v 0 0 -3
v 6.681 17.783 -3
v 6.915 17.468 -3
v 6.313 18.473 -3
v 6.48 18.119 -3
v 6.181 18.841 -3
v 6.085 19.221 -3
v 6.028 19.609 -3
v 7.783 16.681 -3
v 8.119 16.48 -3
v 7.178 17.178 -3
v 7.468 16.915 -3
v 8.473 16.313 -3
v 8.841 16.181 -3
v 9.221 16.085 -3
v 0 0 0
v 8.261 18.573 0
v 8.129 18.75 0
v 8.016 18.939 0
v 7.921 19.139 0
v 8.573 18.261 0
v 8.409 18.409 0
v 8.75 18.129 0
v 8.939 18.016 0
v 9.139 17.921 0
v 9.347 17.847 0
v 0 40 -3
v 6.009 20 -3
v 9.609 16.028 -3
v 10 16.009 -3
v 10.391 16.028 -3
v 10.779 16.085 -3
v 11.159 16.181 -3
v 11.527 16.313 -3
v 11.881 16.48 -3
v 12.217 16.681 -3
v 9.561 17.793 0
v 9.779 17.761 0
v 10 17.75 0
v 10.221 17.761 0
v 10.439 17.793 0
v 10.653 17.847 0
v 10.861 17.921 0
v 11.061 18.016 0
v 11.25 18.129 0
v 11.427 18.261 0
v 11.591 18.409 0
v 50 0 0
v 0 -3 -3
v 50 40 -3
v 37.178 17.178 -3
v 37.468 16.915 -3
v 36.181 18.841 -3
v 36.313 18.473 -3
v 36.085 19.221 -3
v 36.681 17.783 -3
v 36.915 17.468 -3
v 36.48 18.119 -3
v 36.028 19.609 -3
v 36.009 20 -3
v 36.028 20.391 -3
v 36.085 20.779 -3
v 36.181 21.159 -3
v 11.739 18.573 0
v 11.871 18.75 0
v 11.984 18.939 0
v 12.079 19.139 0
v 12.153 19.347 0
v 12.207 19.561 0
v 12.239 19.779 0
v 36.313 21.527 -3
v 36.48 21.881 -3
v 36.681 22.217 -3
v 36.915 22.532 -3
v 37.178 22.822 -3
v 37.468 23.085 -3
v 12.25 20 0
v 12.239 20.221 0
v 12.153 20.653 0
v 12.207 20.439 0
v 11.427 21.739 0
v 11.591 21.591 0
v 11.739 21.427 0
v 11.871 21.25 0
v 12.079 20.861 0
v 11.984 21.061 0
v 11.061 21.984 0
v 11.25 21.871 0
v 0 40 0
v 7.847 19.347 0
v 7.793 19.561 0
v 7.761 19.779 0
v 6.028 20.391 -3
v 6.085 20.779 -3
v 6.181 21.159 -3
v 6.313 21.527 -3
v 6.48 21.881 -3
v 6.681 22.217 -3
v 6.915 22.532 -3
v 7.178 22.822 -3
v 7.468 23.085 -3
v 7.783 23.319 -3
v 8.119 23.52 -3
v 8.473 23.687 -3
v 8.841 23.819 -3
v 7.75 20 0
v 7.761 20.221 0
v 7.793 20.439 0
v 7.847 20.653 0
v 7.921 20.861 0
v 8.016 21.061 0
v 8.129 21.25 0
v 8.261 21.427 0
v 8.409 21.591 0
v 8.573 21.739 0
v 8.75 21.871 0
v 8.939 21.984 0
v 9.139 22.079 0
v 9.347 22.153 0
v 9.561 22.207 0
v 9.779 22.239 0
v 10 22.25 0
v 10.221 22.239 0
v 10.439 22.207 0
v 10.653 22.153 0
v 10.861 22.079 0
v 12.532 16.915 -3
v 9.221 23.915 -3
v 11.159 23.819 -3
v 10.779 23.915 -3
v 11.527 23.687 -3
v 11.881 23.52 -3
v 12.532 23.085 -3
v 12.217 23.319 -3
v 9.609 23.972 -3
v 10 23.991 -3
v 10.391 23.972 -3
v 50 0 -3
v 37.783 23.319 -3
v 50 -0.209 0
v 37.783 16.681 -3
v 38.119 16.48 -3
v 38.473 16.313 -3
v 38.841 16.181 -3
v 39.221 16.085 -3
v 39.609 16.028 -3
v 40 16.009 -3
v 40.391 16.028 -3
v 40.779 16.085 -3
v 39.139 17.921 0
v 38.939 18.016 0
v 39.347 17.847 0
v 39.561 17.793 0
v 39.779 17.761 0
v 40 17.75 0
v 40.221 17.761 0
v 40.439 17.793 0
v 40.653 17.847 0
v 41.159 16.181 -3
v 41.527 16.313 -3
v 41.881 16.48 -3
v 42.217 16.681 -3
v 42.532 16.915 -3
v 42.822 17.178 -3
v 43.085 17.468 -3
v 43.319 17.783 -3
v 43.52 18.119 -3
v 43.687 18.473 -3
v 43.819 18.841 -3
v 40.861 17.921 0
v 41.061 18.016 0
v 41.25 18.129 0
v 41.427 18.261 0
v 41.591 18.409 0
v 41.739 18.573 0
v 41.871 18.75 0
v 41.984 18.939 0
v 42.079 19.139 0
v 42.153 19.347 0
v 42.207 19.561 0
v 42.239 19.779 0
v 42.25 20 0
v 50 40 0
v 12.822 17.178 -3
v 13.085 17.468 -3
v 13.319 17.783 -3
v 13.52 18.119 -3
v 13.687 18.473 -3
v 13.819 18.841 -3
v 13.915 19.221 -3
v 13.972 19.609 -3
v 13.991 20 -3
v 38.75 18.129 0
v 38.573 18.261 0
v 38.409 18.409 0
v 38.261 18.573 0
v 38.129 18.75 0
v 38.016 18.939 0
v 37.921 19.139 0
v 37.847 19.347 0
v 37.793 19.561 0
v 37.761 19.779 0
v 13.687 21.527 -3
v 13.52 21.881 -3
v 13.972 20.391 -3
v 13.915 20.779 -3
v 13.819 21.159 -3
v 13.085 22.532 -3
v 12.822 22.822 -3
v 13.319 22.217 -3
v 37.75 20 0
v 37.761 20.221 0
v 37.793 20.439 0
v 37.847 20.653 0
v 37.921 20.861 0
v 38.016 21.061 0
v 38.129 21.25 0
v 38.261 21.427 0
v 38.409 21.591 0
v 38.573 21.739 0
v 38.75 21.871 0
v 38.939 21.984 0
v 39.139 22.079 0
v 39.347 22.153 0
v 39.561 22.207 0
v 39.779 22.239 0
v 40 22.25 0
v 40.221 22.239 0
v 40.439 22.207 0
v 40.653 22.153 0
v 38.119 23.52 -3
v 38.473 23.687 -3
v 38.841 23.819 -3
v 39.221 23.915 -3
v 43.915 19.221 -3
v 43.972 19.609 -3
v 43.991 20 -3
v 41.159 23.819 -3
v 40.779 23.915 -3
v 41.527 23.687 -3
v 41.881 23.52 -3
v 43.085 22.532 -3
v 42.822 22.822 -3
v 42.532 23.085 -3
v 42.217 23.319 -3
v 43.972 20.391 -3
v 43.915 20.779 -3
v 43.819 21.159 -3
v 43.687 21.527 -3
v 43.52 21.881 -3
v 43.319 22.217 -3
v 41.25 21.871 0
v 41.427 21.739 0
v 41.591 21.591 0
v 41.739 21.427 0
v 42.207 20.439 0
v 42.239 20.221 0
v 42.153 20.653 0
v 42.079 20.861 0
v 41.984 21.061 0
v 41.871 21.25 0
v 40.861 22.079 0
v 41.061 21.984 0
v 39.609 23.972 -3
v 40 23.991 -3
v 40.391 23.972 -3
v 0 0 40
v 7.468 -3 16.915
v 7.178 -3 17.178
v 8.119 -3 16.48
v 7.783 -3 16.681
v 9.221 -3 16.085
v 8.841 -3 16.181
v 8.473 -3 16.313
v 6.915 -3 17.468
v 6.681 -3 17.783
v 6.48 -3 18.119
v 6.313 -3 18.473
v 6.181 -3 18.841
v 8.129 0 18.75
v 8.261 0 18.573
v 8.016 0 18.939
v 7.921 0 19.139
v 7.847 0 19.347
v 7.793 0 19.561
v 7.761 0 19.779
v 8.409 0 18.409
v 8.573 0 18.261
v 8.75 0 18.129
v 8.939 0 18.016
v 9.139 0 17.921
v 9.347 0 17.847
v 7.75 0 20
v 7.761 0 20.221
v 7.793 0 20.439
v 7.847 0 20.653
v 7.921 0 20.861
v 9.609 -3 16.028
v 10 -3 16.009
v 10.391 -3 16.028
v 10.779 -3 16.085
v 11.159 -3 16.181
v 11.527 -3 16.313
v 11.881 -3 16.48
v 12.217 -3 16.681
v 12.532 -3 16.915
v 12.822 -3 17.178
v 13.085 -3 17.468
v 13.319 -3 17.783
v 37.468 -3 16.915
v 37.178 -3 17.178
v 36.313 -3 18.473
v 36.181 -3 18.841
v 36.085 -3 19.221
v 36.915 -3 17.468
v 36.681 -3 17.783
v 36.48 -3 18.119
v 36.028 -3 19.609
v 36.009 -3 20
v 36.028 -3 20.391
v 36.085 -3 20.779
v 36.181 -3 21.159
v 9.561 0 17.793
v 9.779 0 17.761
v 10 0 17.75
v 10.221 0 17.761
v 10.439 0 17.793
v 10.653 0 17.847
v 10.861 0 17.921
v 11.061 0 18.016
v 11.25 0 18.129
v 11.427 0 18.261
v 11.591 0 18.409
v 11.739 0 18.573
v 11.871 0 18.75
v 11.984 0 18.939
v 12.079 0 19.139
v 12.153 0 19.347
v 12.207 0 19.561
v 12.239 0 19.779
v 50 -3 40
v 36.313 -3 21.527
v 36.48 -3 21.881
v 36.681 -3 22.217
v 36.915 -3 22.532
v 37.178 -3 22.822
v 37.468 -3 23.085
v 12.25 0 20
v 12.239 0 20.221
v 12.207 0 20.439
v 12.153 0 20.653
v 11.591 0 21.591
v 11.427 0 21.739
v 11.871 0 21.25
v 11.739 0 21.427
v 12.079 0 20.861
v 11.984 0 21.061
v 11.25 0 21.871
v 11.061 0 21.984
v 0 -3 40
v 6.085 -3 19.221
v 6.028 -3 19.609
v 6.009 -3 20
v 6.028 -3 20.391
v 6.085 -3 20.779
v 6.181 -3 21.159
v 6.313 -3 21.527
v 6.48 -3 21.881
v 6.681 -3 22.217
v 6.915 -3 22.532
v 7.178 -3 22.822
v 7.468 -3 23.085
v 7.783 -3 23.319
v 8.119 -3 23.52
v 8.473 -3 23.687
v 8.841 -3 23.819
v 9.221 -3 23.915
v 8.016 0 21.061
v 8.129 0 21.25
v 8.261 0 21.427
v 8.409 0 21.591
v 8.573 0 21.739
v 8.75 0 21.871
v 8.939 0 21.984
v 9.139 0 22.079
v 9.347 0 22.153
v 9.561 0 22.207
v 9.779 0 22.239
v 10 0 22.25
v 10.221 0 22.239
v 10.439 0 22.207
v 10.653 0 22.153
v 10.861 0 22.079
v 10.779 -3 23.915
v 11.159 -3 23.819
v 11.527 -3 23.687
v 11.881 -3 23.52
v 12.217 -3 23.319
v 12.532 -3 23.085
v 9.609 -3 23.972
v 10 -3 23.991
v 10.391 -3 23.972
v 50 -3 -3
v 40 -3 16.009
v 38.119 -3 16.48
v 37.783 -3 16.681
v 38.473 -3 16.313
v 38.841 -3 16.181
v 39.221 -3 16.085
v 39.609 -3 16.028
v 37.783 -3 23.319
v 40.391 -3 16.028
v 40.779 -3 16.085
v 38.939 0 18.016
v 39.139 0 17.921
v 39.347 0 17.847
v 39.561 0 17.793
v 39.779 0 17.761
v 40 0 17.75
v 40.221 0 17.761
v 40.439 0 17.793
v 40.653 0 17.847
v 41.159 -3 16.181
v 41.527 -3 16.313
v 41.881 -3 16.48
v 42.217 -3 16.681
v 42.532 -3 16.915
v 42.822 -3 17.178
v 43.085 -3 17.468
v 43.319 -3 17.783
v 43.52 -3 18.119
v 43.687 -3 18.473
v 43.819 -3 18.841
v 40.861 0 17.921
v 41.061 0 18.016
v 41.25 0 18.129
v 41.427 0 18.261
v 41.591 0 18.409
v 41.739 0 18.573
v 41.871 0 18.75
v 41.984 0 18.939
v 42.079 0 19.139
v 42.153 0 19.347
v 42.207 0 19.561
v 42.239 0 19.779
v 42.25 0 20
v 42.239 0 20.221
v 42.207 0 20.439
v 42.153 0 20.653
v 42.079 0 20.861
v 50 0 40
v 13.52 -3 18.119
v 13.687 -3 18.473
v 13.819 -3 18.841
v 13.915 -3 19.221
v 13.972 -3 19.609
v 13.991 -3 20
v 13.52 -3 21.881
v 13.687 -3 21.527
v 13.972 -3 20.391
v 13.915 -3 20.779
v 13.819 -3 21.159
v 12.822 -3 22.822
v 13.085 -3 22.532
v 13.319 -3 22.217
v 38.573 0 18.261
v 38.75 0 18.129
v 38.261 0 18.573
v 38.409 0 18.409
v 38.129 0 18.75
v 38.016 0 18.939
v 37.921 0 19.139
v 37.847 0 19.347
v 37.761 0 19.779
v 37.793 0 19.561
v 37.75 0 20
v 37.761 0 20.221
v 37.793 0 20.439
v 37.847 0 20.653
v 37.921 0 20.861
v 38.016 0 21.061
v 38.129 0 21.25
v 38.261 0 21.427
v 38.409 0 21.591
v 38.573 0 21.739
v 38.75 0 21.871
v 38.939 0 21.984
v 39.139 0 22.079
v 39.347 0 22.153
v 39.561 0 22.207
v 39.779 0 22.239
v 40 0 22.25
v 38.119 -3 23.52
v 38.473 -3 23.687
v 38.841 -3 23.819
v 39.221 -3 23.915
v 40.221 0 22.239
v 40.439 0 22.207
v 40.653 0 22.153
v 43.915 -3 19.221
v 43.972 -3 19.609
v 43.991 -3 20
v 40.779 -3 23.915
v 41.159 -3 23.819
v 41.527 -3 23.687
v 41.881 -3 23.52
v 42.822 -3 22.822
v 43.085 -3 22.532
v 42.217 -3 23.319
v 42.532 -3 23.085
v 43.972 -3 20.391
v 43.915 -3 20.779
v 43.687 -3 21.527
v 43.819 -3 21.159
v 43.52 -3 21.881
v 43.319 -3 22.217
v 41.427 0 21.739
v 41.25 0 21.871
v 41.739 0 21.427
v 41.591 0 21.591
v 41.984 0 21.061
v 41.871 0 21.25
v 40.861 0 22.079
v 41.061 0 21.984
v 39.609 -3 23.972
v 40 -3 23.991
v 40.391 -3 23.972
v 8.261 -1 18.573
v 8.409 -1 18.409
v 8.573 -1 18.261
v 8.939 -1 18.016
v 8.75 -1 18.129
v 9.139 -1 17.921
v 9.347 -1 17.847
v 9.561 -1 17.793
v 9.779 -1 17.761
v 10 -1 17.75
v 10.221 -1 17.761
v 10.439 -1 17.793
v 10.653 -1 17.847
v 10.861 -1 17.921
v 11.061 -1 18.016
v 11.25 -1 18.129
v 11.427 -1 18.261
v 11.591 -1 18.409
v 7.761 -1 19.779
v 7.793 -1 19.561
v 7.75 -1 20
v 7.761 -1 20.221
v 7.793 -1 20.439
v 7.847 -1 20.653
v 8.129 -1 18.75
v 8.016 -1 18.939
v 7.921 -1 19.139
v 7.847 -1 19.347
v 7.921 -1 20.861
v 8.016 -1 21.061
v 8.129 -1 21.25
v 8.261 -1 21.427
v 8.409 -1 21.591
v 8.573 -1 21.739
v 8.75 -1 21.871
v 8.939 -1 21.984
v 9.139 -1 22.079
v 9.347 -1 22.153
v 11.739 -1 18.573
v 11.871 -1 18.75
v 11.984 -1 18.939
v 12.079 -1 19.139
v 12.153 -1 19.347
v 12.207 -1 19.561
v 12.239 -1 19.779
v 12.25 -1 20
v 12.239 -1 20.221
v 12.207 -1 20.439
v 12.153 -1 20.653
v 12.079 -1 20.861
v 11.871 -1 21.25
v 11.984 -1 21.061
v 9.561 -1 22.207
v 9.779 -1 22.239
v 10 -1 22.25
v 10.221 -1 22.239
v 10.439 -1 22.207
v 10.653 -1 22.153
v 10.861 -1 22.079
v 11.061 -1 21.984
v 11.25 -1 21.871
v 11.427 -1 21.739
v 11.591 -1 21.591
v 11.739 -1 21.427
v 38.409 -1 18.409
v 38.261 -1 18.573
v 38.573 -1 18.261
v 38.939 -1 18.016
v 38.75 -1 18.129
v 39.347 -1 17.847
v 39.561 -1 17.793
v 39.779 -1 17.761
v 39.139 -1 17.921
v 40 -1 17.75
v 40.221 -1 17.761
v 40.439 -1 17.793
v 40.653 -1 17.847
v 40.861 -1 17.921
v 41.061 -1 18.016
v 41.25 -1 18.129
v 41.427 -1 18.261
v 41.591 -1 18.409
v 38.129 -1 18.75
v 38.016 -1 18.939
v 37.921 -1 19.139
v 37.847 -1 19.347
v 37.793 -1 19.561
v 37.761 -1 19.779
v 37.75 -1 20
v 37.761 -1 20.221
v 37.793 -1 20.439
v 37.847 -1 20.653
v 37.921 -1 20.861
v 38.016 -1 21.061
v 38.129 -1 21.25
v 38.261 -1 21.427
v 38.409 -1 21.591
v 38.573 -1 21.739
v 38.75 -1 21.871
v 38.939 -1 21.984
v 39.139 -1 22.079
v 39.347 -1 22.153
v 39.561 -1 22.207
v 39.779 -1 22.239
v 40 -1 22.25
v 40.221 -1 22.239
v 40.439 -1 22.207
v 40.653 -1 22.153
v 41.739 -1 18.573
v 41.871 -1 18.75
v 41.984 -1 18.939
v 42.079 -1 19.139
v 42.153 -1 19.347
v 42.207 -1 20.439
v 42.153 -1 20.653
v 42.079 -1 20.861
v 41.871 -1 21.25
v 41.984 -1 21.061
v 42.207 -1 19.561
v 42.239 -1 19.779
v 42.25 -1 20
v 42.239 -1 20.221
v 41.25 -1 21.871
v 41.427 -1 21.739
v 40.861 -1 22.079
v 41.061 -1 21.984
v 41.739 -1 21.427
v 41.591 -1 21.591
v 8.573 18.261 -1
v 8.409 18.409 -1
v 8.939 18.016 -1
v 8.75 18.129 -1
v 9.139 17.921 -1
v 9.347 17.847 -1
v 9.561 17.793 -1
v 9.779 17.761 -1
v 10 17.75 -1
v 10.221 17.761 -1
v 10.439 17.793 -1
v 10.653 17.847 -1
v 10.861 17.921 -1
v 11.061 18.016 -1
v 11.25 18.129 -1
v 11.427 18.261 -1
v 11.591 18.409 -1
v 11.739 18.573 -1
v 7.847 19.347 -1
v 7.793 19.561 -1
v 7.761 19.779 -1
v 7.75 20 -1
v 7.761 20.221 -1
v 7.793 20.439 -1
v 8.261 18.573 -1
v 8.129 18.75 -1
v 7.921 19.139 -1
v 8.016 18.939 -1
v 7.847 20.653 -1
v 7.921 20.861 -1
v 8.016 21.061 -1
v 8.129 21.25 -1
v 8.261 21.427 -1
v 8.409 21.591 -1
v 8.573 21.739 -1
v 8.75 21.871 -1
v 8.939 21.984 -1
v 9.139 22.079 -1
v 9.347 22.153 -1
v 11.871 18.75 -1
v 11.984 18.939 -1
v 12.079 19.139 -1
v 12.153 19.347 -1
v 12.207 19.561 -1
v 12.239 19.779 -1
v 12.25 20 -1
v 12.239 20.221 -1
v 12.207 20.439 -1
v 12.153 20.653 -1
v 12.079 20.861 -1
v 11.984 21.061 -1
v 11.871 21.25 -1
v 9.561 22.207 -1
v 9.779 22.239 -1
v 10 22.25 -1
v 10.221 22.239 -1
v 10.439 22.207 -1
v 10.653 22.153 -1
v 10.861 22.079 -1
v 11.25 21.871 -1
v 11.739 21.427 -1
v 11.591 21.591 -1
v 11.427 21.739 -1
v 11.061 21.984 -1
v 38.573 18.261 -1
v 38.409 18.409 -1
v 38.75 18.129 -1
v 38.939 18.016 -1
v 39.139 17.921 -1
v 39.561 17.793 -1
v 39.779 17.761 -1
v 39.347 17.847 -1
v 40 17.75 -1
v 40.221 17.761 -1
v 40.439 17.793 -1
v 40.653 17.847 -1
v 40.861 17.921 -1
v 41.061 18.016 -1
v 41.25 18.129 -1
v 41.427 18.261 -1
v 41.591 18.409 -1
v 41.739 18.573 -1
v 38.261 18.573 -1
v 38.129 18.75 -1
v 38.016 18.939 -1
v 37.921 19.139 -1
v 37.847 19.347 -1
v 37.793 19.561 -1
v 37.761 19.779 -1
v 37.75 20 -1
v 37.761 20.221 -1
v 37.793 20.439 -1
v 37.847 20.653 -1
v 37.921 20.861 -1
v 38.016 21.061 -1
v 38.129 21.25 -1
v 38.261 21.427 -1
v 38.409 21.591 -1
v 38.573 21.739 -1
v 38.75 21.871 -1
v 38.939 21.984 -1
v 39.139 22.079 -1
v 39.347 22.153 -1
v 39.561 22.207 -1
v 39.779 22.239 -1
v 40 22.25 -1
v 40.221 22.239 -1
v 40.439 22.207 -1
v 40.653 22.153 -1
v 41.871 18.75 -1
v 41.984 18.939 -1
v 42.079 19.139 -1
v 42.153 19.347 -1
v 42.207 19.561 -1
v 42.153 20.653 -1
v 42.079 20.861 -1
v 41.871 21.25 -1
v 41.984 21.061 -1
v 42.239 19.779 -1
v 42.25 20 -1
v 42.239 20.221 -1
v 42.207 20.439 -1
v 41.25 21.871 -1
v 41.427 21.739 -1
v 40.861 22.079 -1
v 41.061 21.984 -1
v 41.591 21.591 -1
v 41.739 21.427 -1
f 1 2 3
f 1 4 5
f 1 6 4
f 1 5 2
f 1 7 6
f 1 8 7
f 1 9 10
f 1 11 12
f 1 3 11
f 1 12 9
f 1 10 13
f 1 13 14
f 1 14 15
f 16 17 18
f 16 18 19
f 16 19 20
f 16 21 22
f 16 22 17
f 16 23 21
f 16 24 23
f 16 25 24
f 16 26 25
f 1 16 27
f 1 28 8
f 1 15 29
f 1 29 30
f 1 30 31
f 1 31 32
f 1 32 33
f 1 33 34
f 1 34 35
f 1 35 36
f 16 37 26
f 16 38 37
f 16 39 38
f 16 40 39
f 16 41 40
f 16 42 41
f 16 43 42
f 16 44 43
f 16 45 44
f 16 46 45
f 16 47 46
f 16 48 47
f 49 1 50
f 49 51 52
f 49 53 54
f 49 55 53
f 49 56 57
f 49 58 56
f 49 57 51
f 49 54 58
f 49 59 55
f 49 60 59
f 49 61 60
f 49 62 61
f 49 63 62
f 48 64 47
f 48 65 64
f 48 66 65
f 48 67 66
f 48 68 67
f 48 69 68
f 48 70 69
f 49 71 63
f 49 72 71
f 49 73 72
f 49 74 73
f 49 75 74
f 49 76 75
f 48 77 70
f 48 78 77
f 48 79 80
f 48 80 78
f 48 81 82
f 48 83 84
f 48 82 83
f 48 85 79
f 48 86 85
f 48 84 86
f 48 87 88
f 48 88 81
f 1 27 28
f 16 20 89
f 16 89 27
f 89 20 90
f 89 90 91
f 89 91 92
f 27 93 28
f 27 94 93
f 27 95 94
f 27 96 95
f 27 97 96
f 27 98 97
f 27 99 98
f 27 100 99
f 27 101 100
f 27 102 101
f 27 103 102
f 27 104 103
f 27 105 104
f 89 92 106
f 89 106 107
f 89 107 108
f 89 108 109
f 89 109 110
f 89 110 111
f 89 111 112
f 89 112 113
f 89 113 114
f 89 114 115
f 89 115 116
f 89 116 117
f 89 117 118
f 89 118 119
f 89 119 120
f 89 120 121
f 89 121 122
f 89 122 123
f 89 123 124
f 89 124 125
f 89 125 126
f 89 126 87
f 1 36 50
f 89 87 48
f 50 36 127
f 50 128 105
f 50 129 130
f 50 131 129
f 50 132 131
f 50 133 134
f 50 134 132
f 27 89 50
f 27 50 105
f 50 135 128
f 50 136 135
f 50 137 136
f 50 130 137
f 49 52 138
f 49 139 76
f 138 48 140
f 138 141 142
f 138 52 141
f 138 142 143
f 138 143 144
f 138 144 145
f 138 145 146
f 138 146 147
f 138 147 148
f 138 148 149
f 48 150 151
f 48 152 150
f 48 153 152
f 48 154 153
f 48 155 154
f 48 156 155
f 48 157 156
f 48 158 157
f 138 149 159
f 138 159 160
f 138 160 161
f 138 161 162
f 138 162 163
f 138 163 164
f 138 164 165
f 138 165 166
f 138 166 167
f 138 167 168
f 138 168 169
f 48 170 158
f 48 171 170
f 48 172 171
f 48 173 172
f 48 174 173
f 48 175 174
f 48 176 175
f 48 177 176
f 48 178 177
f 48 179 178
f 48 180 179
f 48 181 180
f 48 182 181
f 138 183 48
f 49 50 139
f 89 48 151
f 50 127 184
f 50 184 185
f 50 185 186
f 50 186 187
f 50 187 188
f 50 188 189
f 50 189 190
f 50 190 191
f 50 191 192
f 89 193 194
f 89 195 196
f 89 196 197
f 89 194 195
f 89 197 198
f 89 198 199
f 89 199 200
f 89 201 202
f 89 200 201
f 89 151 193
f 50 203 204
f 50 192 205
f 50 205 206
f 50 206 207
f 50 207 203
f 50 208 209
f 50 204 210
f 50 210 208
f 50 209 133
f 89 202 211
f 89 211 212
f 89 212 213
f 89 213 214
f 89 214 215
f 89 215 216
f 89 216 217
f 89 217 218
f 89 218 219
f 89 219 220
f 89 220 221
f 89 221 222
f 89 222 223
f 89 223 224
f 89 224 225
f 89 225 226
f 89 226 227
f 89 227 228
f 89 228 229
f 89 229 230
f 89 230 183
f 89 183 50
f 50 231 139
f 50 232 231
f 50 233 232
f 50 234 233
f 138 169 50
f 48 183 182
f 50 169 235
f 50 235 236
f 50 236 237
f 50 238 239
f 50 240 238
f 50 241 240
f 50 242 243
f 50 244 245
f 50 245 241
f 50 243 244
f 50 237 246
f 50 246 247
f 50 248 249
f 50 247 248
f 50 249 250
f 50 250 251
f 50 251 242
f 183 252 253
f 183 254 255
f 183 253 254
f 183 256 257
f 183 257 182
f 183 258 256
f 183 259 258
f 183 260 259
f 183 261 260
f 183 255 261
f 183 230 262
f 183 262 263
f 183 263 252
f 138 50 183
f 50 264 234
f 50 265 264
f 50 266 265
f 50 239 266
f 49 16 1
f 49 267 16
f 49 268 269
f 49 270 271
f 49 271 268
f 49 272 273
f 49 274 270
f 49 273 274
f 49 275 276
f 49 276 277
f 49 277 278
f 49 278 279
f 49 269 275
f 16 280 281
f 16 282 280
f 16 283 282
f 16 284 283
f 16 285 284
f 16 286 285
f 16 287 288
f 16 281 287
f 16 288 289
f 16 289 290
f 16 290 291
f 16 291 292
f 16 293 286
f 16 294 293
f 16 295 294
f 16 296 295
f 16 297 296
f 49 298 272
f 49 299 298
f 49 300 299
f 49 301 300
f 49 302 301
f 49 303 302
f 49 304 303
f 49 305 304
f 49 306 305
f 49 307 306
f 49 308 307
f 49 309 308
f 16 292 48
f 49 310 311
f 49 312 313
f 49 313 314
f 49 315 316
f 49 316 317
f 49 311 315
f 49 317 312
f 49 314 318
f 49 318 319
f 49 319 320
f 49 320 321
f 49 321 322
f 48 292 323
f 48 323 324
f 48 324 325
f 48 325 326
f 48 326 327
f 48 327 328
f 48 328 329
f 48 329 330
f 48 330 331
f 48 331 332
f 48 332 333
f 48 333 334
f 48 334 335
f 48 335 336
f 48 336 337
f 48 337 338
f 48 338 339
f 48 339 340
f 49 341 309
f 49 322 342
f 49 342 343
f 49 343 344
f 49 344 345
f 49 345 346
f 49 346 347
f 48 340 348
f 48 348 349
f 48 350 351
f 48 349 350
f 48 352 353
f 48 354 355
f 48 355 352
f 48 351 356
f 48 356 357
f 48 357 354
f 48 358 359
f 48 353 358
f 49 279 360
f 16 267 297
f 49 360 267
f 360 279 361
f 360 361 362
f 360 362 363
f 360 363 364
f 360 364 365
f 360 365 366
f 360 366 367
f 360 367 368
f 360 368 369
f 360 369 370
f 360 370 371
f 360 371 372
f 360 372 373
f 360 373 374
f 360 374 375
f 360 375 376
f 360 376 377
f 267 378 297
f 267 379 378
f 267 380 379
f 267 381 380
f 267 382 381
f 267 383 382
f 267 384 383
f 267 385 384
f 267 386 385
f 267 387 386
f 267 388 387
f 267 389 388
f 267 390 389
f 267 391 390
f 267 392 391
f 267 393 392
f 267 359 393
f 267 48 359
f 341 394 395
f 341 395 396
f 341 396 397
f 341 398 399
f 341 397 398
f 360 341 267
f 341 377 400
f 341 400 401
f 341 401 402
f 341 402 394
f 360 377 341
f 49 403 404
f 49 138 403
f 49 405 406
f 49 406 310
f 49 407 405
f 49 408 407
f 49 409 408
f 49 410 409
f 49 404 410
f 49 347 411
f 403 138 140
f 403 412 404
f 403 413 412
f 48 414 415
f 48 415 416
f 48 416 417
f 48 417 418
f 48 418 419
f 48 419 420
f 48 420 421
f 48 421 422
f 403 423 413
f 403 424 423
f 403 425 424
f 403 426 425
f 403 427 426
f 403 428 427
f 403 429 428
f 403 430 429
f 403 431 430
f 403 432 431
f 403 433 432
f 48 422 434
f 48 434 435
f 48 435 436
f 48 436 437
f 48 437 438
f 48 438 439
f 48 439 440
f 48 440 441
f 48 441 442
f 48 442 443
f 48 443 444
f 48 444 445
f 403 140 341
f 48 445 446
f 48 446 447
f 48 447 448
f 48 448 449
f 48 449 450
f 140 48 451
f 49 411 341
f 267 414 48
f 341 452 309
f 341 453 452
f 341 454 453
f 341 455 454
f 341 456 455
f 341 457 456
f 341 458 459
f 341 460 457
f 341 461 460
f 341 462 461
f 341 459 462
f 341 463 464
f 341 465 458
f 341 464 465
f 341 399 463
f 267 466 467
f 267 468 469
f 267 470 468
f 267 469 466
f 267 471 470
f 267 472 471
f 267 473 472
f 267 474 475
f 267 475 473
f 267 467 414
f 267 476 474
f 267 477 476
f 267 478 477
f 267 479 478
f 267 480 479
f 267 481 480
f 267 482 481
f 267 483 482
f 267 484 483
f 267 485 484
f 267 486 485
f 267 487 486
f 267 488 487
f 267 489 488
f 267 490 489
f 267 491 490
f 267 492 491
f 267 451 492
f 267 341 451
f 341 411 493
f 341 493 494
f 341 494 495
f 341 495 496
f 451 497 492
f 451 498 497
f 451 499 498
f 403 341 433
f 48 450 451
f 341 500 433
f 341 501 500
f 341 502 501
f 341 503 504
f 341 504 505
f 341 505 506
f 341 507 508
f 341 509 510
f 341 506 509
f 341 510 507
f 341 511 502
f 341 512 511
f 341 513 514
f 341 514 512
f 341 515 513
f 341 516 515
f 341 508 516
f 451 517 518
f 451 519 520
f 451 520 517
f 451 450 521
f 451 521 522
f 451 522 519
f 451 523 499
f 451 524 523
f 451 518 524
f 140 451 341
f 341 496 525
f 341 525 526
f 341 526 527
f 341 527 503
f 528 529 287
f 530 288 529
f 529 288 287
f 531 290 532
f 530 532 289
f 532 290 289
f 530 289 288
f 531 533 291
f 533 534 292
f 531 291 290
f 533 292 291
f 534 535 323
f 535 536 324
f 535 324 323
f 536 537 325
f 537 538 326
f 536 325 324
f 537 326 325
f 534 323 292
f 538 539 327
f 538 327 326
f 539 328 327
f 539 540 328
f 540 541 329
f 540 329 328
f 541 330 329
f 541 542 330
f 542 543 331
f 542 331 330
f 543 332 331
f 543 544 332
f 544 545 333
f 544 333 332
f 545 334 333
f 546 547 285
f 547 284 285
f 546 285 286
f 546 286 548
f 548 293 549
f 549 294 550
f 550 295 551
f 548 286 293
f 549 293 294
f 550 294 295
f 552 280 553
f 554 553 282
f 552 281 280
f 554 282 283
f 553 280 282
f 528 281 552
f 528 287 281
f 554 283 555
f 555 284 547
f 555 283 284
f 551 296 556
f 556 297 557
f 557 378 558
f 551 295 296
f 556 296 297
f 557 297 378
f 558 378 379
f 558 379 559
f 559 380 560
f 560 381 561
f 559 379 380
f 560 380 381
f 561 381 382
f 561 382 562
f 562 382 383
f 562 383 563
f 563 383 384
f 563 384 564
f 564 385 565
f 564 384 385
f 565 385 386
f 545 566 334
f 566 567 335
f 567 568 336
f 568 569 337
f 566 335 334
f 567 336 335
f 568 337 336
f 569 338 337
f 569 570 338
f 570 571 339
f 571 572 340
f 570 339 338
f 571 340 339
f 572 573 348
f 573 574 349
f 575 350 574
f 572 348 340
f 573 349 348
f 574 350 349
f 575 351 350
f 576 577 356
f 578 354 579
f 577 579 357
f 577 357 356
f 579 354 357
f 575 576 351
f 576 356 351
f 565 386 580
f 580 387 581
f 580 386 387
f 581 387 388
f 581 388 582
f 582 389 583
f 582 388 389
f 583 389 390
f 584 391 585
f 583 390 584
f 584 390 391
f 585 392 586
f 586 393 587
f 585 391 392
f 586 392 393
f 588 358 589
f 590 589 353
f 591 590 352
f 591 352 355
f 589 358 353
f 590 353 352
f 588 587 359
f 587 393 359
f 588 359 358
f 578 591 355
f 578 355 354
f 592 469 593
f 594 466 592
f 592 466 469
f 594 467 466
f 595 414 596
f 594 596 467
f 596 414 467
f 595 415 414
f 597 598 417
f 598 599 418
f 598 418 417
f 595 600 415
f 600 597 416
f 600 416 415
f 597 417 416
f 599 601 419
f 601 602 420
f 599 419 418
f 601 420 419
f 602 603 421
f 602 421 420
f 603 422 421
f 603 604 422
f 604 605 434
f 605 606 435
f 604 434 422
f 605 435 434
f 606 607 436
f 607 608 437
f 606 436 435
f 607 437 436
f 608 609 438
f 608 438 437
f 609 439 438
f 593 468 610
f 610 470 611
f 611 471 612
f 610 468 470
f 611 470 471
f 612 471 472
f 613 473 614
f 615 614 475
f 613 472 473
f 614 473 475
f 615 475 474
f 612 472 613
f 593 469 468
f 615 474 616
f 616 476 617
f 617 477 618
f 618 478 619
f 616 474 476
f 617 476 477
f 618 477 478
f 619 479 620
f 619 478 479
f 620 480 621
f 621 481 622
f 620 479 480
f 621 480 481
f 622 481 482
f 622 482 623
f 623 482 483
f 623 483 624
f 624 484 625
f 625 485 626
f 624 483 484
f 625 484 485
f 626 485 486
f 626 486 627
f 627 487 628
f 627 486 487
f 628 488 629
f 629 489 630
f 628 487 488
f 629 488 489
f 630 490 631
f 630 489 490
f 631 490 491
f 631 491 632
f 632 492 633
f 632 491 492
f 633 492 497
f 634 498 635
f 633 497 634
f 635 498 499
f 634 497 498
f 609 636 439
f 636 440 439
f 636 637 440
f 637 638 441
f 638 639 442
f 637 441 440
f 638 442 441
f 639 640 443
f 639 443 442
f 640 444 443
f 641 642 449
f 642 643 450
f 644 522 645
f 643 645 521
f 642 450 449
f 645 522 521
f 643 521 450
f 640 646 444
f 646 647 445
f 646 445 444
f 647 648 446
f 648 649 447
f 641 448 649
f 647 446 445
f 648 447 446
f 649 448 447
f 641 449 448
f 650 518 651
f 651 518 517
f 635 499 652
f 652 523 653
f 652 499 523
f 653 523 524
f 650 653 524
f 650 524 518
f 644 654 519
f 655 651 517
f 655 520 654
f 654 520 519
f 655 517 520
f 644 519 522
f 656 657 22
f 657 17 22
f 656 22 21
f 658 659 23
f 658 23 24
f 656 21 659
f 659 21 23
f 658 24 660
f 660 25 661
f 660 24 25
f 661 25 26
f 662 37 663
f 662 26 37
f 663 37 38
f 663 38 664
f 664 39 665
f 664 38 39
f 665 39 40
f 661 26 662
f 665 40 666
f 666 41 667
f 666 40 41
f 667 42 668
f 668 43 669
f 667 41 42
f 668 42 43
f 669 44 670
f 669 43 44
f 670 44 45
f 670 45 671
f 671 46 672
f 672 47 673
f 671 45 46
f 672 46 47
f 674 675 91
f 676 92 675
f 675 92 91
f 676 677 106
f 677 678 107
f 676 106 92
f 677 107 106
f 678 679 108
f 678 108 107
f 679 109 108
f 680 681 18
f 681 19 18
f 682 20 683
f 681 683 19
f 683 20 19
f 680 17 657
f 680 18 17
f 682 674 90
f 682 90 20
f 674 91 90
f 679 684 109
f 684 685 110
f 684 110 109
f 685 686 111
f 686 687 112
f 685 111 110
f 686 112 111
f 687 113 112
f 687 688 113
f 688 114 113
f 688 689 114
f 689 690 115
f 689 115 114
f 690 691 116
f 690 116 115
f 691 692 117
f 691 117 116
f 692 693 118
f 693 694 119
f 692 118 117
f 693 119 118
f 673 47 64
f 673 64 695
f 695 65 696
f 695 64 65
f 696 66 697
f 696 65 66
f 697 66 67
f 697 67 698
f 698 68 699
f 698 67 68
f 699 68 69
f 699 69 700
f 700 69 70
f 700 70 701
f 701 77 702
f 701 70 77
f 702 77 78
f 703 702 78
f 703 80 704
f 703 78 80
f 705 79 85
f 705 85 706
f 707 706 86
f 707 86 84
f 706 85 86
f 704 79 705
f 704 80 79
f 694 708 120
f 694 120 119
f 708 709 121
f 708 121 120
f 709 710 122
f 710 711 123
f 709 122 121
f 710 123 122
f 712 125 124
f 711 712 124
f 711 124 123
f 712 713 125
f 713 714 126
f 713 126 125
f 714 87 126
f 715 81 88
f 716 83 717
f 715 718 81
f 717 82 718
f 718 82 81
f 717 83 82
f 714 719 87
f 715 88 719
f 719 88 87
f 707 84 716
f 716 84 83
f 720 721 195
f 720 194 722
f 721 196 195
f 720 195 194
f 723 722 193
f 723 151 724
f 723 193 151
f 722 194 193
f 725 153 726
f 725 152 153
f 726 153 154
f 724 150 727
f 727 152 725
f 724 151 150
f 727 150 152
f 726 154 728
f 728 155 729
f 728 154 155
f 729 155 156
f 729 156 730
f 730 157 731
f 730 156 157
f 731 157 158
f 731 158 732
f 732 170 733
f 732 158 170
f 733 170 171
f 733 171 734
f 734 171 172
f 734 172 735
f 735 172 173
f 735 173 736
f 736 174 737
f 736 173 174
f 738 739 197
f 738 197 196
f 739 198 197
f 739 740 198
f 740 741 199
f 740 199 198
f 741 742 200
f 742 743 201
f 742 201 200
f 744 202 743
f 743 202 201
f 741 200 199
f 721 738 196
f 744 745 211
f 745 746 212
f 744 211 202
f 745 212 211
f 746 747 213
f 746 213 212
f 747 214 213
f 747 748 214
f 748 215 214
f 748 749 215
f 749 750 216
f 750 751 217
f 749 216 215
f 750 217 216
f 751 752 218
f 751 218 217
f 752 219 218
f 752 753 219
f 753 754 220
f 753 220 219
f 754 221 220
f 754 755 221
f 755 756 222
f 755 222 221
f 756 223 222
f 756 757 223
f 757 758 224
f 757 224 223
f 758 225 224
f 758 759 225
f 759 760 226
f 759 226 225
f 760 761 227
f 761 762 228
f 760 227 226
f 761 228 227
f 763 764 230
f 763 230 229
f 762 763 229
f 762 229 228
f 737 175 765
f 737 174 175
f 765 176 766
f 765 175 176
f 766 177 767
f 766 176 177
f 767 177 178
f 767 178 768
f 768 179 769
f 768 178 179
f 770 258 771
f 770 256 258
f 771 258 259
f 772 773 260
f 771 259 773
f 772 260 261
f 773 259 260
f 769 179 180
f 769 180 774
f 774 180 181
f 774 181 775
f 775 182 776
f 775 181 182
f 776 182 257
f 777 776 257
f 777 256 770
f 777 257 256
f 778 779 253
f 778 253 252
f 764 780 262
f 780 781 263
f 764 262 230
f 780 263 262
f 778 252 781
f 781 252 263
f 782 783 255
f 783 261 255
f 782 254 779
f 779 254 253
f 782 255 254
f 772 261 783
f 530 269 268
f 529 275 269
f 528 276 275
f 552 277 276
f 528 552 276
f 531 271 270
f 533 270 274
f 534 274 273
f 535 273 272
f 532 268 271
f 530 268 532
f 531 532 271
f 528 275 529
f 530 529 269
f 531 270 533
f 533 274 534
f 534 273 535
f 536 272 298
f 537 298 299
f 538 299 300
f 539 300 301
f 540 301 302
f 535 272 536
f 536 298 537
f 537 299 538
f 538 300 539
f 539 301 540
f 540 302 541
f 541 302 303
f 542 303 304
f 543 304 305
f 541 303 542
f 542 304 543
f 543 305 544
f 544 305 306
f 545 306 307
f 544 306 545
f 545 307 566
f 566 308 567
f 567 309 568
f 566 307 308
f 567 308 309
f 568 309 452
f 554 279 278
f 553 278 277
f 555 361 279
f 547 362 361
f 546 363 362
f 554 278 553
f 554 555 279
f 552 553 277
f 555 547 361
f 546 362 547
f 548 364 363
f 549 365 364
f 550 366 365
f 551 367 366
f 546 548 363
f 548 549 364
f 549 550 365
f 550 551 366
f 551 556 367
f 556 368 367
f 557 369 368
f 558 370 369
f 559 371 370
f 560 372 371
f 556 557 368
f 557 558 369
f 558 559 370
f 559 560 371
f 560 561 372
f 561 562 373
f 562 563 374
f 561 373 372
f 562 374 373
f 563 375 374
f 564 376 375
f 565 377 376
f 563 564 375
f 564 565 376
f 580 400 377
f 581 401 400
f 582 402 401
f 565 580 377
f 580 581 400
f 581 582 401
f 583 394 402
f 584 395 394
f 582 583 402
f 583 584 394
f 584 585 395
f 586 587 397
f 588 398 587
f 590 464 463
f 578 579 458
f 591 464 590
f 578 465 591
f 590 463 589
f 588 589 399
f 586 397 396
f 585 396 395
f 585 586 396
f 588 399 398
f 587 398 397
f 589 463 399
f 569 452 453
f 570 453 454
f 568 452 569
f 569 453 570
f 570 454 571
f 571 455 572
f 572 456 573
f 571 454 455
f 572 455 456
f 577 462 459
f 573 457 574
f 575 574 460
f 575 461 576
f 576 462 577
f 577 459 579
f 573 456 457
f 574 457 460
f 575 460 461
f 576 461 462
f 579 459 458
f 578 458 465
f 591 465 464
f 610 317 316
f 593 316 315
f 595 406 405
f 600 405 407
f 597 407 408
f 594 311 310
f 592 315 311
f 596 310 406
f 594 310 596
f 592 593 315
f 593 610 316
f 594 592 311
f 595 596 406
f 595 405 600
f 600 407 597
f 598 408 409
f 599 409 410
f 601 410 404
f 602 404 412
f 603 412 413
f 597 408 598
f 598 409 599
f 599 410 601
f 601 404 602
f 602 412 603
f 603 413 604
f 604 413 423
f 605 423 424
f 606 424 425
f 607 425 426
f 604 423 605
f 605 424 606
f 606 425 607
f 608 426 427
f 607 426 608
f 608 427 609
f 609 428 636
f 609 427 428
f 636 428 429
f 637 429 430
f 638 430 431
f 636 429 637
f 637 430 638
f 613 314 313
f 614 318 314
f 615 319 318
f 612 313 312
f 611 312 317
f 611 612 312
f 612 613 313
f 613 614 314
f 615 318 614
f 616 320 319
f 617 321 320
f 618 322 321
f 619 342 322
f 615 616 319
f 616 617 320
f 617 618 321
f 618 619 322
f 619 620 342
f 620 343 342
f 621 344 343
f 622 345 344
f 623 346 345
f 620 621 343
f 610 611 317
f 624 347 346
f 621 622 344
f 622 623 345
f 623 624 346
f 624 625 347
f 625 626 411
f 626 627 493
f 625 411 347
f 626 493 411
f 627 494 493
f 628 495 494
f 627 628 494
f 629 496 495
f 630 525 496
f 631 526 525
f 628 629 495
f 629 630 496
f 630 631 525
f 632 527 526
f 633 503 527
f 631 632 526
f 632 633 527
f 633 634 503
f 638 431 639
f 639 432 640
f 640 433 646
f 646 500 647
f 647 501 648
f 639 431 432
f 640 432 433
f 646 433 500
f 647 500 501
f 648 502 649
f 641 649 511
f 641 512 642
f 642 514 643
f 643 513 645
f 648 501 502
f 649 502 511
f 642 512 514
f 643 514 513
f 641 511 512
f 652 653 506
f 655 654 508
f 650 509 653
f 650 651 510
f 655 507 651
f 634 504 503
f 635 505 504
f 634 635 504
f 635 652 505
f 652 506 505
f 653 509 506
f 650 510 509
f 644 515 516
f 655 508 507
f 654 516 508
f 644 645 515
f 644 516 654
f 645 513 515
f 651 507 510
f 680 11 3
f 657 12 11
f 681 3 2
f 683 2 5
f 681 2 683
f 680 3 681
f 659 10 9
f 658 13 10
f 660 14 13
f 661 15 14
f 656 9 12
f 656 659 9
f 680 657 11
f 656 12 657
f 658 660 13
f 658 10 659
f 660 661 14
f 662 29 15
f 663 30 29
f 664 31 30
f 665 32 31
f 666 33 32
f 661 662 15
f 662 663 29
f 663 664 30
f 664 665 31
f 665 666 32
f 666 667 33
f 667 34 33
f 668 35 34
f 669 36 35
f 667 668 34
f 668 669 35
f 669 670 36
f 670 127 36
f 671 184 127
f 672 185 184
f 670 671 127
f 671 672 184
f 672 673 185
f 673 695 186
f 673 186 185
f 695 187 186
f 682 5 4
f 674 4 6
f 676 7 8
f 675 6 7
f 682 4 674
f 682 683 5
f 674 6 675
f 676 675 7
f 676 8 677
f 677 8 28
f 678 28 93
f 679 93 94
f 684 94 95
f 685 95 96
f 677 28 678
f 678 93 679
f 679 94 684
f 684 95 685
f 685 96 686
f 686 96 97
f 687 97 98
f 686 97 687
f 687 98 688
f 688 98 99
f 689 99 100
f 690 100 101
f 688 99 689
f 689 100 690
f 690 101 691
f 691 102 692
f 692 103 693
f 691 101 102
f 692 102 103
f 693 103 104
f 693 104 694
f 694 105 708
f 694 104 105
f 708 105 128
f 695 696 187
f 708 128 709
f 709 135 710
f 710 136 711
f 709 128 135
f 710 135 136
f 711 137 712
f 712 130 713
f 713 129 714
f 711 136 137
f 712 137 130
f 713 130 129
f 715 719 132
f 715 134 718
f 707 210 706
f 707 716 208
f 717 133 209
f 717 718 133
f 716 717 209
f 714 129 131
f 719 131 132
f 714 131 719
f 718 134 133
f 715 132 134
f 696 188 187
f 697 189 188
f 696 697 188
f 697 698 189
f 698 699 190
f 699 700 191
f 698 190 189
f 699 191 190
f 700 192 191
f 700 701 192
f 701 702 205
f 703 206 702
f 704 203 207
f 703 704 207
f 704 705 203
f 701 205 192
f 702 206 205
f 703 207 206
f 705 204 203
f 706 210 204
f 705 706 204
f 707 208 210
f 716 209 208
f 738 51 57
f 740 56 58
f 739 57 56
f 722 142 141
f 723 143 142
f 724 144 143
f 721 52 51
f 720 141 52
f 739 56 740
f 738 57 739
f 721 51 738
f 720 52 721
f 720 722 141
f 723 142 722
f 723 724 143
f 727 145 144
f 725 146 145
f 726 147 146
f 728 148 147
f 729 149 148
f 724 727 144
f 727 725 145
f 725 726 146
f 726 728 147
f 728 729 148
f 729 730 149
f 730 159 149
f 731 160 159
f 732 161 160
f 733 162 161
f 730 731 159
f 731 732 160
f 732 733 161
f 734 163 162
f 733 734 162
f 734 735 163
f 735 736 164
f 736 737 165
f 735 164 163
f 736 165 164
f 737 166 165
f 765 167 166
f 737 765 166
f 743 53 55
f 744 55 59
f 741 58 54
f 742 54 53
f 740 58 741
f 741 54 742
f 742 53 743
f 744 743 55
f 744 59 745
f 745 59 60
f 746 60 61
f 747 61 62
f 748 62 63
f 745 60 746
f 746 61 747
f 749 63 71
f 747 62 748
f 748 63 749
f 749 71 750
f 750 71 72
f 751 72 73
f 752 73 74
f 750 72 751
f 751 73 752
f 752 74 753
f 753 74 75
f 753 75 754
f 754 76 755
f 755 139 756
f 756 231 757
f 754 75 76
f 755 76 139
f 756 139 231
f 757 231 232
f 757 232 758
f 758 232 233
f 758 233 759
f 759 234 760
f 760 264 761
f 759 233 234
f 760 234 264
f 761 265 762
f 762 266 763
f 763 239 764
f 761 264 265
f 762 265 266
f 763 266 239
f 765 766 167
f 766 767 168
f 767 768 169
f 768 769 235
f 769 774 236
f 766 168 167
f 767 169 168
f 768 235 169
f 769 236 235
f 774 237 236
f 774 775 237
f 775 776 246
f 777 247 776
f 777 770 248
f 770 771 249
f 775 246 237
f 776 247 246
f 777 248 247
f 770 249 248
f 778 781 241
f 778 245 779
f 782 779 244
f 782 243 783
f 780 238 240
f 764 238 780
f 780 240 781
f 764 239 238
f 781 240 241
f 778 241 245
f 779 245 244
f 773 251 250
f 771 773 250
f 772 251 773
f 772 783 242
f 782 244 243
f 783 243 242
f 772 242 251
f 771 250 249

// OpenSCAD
$fn = 64;

// 寸法パラメータ
width = 50;        // 幅 (X)
length_h = 40;     // 水平面の奥行き (Y)
length_v = 40;     // 垂直面の高さ (Z)
thickness = 3;     // 板厚

// 皿穴パラメータ (M4用)
d_hole = 4.5;      // 貫通穴径
d_cs = 8.0;        // 皿座面径
h_cs = 2.0;        // 皿座面深さ

// 穴の位置
hole_x = [10, width - 10]; // 左右の縁から 10mm 内側
pos_y = length_h / 2;      // 水平面の中心線 (Y=20)
pos_z = length_v / 2;      // 垂直面の中心線 (Z=20)

// 皿穴モジュール (原点は外側表面、+Z 方向に部材がある状態)
module countersunk_hole(t) {
    eps = 0.01;
    // 貫通穴
    translate([0, 0, -eps])
        cylinder(d = d_hole, h = t + 2 * eps);
    // 皿モミ形状
    translate([0, 0, -eps])
        cylinder(d1 = d_cs, d2 = d_hole, h = h_cs + eps);
}

difference() {
    // L字金具本体 (内側コーナーが Y=0, Z=0)
    union() {
        // 水平面 (+Y方向へ伸びる、厚みは -Z方向)
        translate([0, -thickness, -thickness])
            cube([width, length_h + thickness, thickness]);
        // 垂直面 (+Z方向へ伸びる、厚みは -Y方向)
        translate([0, -thickness, -thickness])
            cube([width, thickness, length_v + thickness]);
    }

    // 水平面の皿穴 (外側 -Z から +Z へ貫通)
    for (x = hole_x) {
        translate([x, pos_y, -thickness])
            countersunk_hole(thickness);
    }

    // 垂直面の皿穴 (外側 -Y から +Y へ貫通)
    for (x = hole_x) {
        translate([x, -thickness, pos_z])
            rotate([-90, 0, 0])
                countersunk_hole(thickness);
    }
}
